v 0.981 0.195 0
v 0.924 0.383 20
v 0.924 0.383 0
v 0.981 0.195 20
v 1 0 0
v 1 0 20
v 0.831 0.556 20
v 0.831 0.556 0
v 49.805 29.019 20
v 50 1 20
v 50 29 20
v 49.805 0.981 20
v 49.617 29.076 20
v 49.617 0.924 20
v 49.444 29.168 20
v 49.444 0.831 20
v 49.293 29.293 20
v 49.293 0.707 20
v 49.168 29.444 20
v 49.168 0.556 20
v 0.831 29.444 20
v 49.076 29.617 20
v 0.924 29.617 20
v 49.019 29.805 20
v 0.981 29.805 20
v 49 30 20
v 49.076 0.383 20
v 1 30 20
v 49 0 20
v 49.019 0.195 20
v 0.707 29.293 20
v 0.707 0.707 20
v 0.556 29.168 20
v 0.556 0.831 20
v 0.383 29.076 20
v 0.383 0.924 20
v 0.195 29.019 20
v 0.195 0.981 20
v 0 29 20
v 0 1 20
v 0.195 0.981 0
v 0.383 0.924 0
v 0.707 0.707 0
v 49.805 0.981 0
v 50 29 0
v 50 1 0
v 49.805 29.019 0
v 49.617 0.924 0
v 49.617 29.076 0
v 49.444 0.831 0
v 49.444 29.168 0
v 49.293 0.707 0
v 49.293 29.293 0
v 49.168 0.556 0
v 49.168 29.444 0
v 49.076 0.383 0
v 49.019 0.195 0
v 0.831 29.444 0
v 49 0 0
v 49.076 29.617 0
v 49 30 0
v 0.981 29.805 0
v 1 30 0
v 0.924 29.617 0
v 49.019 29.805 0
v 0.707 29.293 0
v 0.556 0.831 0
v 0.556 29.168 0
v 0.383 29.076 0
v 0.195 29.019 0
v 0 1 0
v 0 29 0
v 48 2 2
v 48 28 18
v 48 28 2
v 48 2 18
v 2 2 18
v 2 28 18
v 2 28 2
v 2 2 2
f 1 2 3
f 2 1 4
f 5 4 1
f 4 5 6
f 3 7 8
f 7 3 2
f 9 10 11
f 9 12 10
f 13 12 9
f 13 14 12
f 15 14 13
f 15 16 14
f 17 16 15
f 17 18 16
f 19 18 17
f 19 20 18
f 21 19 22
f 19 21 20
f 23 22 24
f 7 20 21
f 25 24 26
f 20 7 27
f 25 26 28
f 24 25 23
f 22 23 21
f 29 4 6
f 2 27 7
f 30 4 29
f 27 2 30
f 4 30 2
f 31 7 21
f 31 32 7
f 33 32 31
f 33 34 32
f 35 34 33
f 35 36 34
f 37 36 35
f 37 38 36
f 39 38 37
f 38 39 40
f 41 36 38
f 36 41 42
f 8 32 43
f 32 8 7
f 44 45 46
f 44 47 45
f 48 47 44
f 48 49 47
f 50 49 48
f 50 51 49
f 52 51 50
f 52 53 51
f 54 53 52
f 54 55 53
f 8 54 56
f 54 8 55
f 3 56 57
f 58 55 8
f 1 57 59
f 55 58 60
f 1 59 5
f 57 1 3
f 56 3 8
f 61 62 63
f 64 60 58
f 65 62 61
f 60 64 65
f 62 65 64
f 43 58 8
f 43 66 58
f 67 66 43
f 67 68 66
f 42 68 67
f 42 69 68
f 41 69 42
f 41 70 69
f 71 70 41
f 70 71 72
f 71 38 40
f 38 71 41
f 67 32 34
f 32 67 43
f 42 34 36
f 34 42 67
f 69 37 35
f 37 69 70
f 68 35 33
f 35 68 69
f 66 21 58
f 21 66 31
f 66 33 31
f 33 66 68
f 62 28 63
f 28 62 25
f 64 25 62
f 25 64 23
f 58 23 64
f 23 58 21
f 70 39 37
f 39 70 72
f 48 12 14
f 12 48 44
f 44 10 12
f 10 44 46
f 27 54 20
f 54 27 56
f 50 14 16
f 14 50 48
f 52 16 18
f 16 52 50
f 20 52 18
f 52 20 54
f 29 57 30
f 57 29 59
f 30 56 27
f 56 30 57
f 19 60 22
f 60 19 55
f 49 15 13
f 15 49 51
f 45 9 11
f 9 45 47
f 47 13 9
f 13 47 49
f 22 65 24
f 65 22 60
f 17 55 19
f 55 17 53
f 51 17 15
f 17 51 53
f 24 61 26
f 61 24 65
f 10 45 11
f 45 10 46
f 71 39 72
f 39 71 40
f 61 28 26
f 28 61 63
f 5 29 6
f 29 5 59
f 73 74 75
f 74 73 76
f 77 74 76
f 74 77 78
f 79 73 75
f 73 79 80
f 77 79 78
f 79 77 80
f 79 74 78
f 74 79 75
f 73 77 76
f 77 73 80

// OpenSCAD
module shell(width, height, depth, wall_thickness, fillet_radius) {
  difference() {
    cube([width, height, depth]);
    translate([wall_thickness, wall_thickness, wall_thickness])
    cube([width - 2 * wall_thickness, height - 2 * wall_thickness, depth - 2 * wall_thickness]);

    for (i = [0:1]) {
        for (j = [0:1]) {
            translate([i * width, j * height, 0]) {
                cylinder(h = depth, r = fillet_radius, $fn = 32);
            }
        }
    }
  }
}

shell(width = 50, height = 30, depth = 20, wall_thickness = 2, fillet_radius = 1);
